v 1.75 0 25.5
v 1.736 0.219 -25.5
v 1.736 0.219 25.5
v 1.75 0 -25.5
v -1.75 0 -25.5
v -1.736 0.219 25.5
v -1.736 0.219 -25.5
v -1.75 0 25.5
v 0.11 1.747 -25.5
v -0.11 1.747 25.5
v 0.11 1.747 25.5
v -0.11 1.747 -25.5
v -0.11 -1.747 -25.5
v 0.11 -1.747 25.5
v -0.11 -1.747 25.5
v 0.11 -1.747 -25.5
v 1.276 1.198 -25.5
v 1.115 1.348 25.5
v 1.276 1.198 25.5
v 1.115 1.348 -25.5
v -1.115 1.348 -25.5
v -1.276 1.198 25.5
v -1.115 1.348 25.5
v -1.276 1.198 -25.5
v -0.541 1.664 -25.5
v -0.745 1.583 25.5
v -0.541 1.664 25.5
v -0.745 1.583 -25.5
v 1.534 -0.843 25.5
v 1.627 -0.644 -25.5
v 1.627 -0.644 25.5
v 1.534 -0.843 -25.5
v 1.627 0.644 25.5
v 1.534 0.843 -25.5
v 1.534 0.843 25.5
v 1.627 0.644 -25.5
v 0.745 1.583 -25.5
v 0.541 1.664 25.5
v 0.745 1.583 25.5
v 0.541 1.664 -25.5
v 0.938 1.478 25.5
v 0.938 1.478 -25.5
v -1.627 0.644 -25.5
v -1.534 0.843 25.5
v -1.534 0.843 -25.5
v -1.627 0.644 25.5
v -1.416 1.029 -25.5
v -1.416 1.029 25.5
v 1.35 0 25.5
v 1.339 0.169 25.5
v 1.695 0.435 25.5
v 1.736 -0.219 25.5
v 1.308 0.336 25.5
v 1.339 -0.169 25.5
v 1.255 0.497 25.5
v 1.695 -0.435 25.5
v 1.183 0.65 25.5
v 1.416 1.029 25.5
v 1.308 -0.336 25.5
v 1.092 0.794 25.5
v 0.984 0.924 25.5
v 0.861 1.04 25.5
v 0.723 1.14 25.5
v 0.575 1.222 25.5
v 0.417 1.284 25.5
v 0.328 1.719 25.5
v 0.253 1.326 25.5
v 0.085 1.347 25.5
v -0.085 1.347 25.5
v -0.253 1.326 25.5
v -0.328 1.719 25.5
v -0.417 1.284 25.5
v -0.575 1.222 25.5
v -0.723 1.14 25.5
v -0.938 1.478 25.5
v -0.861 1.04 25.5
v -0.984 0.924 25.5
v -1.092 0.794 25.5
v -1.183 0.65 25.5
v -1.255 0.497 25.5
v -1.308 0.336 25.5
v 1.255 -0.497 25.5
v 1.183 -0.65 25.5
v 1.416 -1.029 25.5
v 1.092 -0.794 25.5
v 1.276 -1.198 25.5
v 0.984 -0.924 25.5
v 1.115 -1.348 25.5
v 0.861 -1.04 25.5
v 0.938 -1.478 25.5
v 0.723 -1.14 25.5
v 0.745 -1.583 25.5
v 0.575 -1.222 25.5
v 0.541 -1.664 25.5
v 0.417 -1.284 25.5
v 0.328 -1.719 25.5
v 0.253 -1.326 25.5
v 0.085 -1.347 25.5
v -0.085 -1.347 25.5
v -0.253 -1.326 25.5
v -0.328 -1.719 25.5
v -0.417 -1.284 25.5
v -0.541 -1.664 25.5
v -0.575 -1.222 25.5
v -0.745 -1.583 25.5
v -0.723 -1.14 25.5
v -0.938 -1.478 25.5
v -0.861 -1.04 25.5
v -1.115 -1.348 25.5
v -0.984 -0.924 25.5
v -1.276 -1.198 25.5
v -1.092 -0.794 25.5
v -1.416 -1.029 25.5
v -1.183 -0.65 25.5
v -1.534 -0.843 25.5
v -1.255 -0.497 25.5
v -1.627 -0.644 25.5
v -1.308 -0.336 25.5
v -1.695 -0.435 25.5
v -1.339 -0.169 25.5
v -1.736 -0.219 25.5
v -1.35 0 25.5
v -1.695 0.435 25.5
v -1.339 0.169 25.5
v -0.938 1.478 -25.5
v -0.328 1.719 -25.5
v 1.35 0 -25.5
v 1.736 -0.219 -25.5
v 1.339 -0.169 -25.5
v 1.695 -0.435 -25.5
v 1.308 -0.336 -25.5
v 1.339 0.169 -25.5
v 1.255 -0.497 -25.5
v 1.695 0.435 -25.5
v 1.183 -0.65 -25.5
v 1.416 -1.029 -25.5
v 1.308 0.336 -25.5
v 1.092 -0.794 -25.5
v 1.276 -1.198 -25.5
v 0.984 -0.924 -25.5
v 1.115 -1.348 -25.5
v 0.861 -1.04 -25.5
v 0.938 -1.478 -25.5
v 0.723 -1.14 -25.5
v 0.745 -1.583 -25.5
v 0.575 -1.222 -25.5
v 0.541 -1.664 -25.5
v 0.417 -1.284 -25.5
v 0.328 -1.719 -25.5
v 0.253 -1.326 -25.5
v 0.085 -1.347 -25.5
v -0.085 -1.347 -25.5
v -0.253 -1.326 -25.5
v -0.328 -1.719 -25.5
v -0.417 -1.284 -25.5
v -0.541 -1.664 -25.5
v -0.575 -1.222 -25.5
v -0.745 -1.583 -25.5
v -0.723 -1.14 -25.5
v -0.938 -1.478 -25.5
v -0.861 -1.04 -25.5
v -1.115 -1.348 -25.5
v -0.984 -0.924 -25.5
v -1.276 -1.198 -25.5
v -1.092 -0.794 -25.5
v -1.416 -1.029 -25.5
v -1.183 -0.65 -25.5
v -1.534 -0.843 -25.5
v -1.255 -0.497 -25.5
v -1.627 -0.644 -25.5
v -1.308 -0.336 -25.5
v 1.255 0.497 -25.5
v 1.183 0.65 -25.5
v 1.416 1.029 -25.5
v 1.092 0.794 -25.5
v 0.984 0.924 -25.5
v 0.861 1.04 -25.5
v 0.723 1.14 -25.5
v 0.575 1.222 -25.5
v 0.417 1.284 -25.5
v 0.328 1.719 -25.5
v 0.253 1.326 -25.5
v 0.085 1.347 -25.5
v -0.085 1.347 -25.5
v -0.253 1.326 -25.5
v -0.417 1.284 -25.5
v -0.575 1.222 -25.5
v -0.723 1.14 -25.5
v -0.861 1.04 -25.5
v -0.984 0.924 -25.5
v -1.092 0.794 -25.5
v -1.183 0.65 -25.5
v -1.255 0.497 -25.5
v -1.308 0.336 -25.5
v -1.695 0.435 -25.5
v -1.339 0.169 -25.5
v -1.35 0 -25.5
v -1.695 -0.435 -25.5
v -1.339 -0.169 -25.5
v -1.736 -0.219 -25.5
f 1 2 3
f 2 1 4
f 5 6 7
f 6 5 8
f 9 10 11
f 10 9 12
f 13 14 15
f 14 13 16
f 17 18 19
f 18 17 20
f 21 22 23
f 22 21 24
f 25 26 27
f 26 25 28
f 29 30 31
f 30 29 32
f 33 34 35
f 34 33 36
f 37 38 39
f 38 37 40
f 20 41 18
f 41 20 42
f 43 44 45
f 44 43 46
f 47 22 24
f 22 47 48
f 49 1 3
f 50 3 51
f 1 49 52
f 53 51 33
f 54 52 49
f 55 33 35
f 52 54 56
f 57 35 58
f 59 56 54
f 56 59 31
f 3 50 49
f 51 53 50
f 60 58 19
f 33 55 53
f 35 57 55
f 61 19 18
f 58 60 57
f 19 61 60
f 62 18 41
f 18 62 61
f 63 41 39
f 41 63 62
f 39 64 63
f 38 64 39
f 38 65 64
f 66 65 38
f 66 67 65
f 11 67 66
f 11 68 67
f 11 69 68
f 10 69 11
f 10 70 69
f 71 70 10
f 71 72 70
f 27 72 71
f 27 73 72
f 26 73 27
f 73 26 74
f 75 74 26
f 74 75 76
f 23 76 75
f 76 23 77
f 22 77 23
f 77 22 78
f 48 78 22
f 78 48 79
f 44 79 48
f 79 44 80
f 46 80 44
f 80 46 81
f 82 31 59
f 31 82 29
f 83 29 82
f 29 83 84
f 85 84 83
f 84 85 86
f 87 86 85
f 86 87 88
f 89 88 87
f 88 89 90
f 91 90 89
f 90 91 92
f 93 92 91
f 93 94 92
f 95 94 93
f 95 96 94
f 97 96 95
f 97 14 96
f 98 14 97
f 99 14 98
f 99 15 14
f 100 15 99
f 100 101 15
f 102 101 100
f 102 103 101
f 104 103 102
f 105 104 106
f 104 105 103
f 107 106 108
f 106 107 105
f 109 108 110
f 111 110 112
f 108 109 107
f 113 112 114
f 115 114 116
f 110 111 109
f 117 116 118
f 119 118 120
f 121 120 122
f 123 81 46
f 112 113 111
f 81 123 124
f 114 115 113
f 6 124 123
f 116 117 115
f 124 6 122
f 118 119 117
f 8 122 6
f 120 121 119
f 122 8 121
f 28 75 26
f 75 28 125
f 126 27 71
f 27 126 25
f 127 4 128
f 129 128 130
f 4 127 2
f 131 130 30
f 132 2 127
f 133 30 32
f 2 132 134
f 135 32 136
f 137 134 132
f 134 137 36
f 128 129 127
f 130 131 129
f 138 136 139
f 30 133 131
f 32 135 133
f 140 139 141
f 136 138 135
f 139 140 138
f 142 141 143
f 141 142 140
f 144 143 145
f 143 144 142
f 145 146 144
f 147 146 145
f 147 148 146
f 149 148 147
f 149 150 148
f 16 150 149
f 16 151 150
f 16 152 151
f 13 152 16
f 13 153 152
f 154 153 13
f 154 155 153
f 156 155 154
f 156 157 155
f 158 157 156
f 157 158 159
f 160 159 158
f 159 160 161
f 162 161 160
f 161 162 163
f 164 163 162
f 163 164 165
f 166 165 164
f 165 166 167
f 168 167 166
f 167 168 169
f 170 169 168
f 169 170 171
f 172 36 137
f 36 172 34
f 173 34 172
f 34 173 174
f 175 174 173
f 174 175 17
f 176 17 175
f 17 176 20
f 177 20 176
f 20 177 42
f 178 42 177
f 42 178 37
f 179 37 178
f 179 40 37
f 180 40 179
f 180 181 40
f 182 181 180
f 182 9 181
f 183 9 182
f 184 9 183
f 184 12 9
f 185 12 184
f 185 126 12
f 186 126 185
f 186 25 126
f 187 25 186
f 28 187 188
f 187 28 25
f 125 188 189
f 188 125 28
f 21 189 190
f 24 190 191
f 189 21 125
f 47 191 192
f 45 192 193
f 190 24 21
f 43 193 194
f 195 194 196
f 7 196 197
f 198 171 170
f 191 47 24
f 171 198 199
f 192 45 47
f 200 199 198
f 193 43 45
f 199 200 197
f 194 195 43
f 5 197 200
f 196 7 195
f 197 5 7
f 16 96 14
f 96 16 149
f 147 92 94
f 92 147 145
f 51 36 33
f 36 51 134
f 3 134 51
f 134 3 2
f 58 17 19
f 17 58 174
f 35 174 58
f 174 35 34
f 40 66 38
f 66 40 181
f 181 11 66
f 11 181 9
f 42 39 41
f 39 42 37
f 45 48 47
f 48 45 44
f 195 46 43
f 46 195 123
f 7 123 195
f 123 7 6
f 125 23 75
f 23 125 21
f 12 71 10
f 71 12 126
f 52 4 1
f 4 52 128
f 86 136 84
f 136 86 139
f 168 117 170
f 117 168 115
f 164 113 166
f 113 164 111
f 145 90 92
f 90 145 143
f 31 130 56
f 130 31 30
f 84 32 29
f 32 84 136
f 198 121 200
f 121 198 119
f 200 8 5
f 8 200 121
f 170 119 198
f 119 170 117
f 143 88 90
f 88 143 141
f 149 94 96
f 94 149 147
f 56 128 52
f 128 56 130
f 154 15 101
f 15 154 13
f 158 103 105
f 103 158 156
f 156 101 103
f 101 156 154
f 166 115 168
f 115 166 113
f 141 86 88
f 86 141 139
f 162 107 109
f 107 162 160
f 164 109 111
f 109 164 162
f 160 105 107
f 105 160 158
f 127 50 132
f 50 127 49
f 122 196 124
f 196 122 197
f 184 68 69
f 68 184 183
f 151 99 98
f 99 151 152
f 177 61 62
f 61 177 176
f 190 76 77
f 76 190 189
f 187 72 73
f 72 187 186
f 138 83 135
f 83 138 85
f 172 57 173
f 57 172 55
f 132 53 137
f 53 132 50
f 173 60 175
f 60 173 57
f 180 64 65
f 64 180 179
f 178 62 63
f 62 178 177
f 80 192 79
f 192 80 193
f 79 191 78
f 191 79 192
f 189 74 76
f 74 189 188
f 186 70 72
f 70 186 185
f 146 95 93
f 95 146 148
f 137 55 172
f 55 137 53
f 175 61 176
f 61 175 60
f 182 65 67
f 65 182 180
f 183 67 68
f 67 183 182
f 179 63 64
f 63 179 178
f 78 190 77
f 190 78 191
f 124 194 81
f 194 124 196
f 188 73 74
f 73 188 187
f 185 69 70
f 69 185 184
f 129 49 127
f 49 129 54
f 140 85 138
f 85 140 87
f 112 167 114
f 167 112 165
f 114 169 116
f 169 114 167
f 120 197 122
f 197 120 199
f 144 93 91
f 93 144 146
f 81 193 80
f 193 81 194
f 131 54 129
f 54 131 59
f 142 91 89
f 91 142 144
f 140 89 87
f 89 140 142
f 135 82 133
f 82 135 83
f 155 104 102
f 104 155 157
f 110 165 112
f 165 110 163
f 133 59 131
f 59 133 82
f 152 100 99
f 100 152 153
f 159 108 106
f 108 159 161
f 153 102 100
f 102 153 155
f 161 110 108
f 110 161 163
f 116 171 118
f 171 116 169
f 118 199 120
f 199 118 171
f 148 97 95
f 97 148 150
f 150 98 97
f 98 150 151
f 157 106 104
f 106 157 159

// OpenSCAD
$fn = 50;


difference() {
	union() {
		translate(v = [0, 0, -25.5000000000]) {
			cylinder(h = 51, r = 1.7500000000);
		}
	}
	union() {
		translate(v = [0, 0, -100.0000000000]) {
			cylinder(h = 200, r = 1.3500000000);
		}
	}
}
